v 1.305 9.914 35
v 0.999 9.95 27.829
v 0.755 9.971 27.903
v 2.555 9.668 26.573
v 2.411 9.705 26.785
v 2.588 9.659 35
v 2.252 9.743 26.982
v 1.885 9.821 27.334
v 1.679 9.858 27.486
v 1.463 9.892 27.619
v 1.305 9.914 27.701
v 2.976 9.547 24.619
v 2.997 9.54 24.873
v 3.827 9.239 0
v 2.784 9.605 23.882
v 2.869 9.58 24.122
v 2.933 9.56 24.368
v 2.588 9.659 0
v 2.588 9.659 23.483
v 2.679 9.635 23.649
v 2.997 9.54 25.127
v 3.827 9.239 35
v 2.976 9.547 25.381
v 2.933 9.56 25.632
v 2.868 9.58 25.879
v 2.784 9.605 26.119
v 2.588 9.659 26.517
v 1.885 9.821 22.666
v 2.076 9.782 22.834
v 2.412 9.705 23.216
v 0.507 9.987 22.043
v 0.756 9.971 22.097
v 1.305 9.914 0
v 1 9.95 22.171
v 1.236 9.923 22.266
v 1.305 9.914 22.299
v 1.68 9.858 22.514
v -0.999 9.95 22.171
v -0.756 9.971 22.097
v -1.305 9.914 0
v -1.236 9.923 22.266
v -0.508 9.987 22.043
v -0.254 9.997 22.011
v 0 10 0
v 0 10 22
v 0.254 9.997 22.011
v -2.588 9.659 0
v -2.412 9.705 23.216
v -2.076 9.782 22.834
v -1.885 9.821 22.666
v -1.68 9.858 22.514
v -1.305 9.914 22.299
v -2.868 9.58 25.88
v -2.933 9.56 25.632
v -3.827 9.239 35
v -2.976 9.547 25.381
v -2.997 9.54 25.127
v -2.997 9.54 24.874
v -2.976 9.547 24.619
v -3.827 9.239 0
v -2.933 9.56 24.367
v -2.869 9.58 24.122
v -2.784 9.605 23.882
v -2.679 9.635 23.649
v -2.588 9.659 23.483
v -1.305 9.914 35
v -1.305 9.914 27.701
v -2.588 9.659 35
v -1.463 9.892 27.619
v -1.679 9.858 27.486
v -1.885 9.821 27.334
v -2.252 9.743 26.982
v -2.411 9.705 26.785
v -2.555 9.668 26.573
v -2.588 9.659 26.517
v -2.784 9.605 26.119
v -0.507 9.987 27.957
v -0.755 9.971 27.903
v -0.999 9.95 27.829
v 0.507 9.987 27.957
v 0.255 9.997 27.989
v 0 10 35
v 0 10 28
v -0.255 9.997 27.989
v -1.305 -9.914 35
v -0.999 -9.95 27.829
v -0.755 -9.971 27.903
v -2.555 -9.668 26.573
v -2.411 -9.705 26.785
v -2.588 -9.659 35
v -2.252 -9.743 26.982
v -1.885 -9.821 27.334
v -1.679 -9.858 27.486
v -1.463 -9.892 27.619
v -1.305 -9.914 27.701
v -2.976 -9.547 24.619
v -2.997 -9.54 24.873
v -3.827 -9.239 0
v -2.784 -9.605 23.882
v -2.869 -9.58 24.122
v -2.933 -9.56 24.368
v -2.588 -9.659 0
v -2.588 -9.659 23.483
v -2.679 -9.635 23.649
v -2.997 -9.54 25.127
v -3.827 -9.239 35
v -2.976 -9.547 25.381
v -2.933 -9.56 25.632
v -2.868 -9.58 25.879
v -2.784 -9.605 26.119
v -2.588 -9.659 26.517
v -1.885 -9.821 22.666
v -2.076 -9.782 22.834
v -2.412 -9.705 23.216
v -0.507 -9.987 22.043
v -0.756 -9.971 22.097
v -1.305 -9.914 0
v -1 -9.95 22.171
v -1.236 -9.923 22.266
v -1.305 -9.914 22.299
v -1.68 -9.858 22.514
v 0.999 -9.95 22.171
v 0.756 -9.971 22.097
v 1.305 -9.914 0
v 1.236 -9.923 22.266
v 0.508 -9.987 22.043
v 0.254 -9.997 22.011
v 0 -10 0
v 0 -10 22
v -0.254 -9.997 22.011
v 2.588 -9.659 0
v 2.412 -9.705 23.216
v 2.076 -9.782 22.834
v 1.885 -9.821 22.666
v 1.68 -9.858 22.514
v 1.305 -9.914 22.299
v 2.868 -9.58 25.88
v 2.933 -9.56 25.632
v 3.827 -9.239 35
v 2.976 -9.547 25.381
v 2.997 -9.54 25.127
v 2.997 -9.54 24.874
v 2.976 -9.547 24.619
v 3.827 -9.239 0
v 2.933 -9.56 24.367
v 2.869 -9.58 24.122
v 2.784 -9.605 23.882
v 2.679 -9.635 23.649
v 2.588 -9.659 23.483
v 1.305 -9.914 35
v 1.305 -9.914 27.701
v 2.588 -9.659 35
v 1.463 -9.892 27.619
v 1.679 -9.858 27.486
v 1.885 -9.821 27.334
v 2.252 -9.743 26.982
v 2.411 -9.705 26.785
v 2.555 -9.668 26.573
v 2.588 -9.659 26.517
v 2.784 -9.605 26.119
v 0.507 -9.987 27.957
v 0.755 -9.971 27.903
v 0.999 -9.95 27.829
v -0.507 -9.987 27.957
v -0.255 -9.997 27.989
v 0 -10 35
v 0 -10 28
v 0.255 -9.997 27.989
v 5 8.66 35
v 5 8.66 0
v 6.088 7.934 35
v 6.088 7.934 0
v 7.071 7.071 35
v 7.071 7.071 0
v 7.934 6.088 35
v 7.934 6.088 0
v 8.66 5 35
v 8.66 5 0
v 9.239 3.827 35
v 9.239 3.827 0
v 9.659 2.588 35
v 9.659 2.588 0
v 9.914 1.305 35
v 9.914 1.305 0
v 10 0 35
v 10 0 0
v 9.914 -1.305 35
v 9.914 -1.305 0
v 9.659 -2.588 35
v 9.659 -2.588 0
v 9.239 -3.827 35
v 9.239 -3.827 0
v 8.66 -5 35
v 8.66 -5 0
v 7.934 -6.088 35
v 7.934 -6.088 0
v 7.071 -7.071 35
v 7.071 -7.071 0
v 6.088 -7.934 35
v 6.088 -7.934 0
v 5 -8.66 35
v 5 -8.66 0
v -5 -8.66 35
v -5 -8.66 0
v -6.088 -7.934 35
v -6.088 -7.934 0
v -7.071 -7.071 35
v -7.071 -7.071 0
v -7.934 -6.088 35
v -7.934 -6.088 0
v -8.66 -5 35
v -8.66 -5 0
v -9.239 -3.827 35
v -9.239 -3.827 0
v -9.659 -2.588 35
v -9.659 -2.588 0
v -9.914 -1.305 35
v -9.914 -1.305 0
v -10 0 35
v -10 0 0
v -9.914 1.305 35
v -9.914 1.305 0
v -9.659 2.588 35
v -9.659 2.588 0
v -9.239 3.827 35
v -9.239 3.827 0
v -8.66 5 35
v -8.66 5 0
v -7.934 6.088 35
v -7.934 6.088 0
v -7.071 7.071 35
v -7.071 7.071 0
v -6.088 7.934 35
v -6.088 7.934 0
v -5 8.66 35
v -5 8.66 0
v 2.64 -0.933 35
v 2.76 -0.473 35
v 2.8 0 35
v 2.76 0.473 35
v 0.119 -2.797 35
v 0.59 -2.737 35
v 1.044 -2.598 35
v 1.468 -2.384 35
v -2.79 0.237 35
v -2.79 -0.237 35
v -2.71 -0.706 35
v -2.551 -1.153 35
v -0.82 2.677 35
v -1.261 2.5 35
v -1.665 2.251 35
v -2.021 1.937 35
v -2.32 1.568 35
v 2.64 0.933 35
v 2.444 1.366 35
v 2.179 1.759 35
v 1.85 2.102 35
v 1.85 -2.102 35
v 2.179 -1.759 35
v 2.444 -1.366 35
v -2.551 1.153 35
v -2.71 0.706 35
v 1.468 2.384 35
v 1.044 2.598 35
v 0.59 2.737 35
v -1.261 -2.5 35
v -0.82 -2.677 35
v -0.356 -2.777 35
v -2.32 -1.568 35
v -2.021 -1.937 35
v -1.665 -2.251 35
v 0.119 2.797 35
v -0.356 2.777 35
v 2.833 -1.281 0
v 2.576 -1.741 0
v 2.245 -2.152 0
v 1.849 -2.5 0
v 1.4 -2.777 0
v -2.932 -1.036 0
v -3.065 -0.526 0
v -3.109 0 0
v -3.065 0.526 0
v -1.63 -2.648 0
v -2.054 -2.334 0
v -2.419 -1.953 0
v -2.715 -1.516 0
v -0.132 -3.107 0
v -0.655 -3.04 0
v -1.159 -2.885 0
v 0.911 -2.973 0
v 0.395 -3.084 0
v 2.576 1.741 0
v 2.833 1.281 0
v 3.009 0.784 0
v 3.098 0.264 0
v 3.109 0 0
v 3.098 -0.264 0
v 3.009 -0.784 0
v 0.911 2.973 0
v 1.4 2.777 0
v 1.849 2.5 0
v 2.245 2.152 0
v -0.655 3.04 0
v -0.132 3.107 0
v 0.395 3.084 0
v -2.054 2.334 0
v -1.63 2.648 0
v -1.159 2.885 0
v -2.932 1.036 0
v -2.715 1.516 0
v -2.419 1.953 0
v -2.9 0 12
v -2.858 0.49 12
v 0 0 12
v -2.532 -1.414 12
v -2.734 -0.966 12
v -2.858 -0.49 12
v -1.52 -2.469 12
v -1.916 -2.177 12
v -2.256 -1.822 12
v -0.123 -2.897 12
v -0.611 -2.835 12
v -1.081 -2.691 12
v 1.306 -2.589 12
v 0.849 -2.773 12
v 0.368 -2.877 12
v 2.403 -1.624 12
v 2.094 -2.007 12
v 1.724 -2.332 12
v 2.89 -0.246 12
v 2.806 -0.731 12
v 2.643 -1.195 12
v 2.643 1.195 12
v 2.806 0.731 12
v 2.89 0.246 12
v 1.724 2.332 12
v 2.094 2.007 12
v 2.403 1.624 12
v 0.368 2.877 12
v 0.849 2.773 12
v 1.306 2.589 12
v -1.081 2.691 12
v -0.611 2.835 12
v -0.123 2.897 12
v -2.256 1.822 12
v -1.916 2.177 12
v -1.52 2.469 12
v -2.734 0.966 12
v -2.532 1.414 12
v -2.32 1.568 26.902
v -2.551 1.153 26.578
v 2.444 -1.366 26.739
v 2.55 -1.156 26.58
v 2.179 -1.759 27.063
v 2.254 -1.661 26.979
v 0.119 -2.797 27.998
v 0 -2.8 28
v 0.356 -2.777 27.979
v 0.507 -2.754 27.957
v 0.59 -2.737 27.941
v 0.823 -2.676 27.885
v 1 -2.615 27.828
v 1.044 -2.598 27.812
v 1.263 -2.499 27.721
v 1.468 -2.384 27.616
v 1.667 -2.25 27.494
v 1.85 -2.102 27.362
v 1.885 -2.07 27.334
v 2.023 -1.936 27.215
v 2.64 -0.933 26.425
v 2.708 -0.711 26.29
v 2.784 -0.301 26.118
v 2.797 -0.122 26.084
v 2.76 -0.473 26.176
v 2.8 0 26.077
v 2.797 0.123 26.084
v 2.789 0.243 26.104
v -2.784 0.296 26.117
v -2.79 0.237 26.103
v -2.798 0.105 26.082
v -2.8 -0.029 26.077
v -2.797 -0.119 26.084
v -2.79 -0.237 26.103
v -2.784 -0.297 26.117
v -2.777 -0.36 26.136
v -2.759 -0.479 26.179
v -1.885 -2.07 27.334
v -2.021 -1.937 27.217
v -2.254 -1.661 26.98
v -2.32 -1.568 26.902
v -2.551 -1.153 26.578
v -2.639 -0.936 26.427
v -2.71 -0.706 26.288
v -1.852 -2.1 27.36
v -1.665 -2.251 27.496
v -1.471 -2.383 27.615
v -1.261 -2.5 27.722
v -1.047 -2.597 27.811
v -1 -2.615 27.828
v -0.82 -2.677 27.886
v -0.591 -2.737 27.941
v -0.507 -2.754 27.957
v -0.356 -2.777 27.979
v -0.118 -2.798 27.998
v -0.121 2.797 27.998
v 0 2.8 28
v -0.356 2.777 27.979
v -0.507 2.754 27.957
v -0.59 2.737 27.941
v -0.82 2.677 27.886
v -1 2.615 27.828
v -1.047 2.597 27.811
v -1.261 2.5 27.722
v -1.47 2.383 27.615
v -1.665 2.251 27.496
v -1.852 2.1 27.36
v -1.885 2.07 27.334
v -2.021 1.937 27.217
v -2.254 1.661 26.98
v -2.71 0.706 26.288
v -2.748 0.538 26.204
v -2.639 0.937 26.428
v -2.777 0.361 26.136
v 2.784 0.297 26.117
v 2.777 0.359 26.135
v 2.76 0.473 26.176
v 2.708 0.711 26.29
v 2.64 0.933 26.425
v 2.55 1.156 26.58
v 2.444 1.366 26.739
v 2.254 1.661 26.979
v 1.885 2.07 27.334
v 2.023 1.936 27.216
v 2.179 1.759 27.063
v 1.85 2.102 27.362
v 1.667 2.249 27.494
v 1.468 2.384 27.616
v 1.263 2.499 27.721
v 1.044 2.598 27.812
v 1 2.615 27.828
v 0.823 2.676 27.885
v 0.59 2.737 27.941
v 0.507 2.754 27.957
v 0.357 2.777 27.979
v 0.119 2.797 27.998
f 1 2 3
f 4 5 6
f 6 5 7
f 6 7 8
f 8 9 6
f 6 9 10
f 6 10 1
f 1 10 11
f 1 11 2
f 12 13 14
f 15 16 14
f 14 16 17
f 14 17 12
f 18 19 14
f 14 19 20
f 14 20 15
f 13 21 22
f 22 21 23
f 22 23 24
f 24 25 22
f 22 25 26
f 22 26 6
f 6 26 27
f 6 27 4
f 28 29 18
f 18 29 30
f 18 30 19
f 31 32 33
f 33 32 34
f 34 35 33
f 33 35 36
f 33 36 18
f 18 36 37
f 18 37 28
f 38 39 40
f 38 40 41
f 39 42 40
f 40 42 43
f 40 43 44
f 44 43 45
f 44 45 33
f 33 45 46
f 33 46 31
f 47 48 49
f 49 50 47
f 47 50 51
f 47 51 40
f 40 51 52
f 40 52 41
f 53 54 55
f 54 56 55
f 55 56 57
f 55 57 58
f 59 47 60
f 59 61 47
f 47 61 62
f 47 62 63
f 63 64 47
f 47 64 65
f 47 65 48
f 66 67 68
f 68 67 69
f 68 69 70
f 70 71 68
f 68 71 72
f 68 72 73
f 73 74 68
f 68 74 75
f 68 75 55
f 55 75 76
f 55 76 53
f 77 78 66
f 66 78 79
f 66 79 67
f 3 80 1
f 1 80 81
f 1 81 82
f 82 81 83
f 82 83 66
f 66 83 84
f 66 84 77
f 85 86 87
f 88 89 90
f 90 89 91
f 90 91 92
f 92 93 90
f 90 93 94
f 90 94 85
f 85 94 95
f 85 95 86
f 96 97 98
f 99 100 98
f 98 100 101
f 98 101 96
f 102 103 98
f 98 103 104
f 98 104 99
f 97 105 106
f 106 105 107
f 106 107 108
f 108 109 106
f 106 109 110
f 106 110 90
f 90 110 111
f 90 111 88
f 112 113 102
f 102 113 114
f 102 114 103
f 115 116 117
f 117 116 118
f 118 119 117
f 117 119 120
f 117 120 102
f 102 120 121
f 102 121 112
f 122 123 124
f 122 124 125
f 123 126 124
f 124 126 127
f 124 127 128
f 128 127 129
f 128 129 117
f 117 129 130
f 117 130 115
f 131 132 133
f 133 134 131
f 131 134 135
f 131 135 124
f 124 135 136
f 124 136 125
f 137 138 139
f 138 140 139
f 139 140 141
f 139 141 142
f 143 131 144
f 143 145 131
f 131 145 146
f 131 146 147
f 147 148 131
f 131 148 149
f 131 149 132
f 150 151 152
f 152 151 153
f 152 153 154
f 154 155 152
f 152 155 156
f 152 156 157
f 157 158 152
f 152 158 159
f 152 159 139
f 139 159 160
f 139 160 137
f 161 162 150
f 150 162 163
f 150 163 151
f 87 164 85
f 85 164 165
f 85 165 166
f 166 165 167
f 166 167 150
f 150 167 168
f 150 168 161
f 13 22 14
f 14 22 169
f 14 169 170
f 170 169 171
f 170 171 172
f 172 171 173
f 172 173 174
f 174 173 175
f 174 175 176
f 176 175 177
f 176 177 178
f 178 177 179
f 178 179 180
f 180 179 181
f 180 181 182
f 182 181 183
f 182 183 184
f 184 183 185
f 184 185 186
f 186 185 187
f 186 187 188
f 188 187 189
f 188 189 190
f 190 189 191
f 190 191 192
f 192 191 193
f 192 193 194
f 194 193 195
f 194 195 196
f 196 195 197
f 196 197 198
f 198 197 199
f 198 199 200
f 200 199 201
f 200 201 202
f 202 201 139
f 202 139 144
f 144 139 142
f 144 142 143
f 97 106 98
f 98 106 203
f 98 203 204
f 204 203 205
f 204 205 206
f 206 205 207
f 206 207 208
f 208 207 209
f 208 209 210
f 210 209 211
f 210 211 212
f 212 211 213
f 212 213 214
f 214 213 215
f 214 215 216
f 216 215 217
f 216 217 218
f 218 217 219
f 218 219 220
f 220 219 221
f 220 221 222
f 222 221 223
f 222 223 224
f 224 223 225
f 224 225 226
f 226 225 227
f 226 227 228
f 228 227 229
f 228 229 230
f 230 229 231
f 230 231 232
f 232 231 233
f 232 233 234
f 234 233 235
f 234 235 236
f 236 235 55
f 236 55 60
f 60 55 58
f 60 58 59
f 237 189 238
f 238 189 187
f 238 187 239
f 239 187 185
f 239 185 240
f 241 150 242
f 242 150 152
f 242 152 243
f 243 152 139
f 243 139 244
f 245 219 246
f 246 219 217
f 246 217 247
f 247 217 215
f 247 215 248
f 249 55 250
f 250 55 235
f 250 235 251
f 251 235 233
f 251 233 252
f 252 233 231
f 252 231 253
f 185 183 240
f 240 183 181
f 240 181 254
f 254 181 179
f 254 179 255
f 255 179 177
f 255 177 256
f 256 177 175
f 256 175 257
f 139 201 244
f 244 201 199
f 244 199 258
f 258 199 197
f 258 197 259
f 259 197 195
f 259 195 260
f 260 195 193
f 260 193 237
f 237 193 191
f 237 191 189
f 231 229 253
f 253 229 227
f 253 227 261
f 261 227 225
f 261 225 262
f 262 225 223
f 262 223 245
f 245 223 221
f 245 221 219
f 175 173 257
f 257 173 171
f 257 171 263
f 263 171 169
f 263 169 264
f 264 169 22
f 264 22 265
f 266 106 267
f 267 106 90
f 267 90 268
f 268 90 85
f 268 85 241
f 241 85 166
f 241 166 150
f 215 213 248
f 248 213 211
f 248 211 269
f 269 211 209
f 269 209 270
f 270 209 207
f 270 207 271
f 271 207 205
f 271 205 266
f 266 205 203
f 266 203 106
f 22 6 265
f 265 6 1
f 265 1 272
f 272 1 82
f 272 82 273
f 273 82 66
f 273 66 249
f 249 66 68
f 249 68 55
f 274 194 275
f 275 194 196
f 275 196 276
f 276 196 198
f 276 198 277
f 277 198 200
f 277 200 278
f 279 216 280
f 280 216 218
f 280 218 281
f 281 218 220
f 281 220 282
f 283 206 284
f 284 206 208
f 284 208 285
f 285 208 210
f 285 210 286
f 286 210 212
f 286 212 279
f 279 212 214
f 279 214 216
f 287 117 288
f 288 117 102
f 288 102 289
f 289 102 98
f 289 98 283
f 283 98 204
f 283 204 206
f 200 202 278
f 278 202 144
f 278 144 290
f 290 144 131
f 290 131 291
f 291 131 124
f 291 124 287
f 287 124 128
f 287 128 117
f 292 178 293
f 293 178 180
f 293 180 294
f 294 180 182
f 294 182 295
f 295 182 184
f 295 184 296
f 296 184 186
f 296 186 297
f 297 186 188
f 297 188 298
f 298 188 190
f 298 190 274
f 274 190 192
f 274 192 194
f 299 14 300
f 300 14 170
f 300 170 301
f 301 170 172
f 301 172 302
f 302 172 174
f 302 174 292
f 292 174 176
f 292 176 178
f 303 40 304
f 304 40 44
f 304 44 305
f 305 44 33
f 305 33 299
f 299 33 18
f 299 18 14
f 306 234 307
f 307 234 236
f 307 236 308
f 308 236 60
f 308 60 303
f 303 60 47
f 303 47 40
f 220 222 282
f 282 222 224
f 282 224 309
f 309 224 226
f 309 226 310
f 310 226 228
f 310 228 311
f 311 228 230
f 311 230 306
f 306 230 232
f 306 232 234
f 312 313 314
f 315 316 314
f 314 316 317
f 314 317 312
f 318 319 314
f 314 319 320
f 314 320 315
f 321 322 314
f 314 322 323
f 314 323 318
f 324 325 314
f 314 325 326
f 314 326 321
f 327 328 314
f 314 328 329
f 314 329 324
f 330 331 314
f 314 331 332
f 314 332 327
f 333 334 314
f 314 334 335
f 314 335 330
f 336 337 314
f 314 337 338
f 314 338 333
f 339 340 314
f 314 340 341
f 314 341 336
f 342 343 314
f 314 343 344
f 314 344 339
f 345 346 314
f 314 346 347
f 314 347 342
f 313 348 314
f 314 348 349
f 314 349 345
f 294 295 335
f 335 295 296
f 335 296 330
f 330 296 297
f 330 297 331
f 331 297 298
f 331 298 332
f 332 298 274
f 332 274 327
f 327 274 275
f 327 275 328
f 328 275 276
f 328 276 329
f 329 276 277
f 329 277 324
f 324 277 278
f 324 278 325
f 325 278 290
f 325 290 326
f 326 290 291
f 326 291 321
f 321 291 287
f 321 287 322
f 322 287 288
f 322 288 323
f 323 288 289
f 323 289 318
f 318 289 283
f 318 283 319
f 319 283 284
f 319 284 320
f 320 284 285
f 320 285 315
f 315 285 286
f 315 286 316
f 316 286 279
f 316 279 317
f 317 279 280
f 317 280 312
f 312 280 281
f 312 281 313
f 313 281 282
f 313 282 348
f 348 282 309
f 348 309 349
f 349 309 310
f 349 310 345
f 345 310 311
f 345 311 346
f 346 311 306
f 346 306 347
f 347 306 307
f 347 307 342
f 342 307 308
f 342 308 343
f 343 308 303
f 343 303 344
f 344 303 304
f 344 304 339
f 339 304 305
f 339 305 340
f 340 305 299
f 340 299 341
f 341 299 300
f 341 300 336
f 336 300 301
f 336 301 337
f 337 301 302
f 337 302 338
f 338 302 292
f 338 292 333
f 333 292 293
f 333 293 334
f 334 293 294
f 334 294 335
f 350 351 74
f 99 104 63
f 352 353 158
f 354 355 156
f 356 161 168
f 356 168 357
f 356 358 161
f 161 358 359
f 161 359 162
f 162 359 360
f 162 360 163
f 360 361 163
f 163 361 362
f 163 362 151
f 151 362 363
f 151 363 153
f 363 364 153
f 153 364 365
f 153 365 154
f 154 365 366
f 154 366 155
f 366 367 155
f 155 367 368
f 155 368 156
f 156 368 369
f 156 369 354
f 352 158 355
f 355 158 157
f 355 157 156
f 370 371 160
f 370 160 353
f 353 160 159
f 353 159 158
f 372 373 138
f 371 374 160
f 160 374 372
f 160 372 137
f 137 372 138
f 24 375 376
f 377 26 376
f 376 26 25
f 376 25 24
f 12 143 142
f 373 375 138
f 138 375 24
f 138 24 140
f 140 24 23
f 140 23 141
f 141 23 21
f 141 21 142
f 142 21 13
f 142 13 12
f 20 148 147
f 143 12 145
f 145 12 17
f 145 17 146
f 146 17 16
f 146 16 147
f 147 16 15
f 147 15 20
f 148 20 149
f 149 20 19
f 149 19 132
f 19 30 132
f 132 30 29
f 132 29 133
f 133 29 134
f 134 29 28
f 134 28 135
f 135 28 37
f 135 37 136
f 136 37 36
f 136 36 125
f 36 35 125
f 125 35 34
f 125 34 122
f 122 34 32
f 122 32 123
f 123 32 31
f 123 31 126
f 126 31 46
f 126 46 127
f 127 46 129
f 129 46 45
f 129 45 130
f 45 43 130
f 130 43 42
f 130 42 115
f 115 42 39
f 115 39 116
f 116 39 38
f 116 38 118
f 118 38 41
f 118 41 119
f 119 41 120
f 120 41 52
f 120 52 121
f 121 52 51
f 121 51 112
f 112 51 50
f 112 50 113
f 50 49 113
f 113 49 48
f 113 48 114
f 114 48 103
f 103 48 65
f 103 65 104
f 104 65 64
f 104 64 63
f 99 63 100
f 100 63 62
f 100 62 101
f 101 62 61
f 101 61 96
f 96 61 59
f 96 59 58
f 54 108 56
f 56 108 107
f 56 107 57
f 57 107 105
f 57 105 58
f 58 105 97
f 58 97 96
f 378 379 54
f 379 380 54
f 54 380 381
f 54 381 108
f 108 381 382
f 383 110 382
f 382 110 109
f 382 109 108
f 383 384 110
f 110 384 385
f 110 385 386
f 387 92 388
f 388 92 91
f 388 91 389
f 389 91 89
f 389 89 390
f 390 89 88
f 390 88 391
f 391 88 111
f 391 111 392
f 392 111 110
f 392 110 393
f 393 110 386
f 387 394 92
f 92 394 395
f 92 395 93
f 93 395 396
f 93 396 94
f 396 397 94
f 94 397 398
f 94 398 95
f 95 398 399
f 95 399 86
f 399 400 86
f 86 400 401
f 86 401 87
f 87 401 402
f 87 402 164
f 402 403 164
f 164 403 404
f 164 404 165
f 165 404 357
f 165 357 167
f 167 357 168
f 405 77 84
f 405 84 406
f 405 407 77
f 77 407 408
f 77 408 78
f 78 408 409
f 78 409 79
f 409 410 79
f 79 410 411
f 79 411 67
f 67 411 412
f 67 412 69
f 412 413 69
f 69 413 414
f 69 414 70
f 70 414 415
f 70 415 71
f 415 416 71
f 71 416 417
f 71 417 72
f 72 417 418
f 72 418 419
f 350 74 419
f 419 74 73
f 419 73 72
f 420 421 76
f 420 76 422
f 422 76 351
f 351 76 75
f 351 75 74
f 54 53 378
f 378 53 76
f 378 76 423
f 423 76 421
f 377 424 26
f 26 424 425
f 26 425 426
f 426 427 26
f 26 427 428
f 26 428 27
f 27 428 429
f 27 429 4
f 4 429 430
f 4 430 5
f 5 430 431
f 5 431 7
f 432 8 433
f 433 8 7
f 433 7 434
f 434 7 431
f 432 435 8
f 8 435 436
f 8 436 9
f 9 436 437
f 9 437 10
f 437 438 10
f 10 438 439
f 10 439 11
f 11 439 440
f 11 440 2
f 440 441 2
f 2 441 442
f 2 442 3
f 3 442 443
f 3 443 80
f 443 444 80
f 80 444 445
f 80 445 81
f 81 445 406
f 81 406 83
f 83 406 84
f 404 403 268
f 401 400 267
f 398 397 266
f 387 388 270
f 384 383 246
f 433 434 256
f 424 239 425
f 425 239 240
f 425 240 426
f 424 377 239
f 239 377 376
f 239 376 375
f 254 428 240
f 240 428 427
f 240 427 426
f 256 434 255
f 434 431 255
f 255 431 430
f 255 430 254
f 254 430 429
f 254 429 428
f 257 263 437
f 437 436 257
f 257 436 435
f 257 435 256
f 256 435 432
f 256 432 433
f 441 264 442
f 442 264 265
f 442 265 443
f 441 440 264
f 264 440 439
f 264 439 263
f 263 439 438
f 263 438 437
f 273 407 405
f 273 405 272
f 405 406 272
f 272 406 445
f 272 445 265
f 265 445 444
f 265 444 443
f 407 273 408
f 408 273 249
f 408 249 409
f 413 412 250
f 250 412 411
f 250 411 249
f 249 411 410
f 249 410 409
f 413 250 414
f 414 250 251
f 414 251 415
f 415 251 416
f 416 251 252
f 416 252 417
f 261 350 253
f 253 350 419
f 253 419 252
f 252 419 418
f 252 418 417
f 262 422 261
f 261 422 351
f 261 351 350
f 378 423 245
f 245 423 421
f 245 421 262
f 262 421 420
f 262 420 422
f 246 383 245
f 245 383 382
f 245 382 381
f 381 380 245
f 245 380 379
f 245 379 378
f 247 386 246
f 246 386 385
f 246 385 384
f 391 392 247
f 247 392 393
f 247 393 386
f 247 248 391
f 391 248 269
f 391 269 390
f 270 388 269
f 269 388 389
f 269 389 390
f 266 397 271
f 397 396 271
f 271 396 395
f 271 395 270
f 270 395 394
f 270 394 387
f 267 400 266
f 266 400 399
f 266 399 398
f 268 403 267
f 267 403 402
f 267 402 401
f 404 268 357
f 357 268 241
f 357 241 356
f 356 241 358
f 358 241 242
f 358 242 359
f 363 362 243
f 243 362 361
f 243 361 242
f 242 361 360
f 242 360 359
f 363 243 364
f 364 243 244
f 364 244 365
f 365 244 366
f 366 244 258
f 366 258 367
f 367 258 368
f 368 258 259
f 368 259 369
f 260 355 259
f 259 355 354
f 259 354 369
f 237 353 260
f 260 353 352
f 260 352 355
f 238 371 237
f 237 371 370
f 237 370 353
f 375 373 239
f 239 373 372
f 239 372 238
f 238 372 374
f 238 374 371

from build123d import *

# Parameters (mm, degrees)
SKETCH1_R               = 10
BOSS_EXTRUDE1_DEPTH     = 35
SKETCH2_R               = 2.9
CUT_EXTRUDE1_DEPTH      = 12
CUT_EXTRUDE1_DRAFT      = -1
CUT_EXTRUDE2_DEPTH      = 38.749172176
CUT_EXTRUDE2_DEPTH_BACK = 38.749172176
SKETCH3_R               = 3
CUT_EXTRUDE3_REACH      = 39.749
CUT_EXTRUDE3_END_RADIUS = 3
SKETCH4_R               = 2.8


with BuildPart() as part:
    # Sketch1 → Boss-Extrude1 (new body)
    with BuildSketch(Plane.XY):
        Circle(SKETCH1_R)
    extrude(amount=BOSS_EXTRUDE1_DEPTH)


with BuildPart() as cut_extrude1_tool:
    # Sketch2 → Cut-Extrude1 (with draft: the straight prism first)
    with BuildSketch(Plane(origin=(0, 0, 12), x_dir=(-1, 0, 0), z_dir=(0, 0, -1))):
        Circle(SKETCH2_R)
    extrude(amount=CUT_EXTRUDE1_DEPTH)
    # Cut-Extrude1: the draft: its side faces are tilted about the plane it starts from
    cut_extrude1_sides = [cut_extrude1_tool.faces().sort_by_distance(p)[0] for p in [
        (2.9, 0, 6),
    ]]
    draft(cut_extrude1_sides, Plane(origin=(0, 0, 12), x_dir=(-1, 0, 0), z_dir=(0, 0, -1)), CUT_EXTRUDE1_DRAFT)


with BuildPart() as part_1:
    add(part.part)

    # Cut-Extrude1: cut by cut_extrude1_tool
    add(cut_extrude1_tool.part, mode=Mode.SUBTRACT)

    # Sketch3 → Cut-Extrude2 (cut, two sides: drawn at the far end of the back side and taken through both)
    with BuildSketch(Plane(origin=(0, 0, 0), x_dir=(1, 0, 0), z_dir=(0, 1, 0)).offset(-CUT_EXTRUDE2_DEPTH_BACK)):
        with Locations(Location((0, -25, 0), (0, 0, 270))):
            Circle(SKETCH3_R)
    extrude(amount=CUT_EXTRUDE2_DEPTH + CUT_EXTRUDE2_DEPTH_BACK, mode=Mode.SUBTRACT)

    # Cut-Extrude3: up to this cylinder (the profile starts outside it)
    cut_extrude3_end = Plane(origin=(0, 0, 25), z_dir=(0, 1, 0)) * Cylinder(CUT_EXTRUDE3_END_RADIUS, 86.498, mode=Mode.PRIVATE)
    # Sketch4 → Cut-Extrude3 (cut, up to the surface)
    with BuildSketch(Plane.XY.offset(35), mode=Mode.PRIVATE) as cut_extrude3_sk1:
        Circle(SKETCH4_R)
    cut_extrude3_tool1 = extrude(cut_extrude3_sk1.sketch, amount=-CUT_EXTRUDE3_REACH, mode=Mode.PRIVATE) - cut_extrude3_end
    add(cut_extrude3_tool1.solids().sort_by_distance((0, 0, 35))[0], mode=Mode.SUBTRACT)


solid = part_1.part
